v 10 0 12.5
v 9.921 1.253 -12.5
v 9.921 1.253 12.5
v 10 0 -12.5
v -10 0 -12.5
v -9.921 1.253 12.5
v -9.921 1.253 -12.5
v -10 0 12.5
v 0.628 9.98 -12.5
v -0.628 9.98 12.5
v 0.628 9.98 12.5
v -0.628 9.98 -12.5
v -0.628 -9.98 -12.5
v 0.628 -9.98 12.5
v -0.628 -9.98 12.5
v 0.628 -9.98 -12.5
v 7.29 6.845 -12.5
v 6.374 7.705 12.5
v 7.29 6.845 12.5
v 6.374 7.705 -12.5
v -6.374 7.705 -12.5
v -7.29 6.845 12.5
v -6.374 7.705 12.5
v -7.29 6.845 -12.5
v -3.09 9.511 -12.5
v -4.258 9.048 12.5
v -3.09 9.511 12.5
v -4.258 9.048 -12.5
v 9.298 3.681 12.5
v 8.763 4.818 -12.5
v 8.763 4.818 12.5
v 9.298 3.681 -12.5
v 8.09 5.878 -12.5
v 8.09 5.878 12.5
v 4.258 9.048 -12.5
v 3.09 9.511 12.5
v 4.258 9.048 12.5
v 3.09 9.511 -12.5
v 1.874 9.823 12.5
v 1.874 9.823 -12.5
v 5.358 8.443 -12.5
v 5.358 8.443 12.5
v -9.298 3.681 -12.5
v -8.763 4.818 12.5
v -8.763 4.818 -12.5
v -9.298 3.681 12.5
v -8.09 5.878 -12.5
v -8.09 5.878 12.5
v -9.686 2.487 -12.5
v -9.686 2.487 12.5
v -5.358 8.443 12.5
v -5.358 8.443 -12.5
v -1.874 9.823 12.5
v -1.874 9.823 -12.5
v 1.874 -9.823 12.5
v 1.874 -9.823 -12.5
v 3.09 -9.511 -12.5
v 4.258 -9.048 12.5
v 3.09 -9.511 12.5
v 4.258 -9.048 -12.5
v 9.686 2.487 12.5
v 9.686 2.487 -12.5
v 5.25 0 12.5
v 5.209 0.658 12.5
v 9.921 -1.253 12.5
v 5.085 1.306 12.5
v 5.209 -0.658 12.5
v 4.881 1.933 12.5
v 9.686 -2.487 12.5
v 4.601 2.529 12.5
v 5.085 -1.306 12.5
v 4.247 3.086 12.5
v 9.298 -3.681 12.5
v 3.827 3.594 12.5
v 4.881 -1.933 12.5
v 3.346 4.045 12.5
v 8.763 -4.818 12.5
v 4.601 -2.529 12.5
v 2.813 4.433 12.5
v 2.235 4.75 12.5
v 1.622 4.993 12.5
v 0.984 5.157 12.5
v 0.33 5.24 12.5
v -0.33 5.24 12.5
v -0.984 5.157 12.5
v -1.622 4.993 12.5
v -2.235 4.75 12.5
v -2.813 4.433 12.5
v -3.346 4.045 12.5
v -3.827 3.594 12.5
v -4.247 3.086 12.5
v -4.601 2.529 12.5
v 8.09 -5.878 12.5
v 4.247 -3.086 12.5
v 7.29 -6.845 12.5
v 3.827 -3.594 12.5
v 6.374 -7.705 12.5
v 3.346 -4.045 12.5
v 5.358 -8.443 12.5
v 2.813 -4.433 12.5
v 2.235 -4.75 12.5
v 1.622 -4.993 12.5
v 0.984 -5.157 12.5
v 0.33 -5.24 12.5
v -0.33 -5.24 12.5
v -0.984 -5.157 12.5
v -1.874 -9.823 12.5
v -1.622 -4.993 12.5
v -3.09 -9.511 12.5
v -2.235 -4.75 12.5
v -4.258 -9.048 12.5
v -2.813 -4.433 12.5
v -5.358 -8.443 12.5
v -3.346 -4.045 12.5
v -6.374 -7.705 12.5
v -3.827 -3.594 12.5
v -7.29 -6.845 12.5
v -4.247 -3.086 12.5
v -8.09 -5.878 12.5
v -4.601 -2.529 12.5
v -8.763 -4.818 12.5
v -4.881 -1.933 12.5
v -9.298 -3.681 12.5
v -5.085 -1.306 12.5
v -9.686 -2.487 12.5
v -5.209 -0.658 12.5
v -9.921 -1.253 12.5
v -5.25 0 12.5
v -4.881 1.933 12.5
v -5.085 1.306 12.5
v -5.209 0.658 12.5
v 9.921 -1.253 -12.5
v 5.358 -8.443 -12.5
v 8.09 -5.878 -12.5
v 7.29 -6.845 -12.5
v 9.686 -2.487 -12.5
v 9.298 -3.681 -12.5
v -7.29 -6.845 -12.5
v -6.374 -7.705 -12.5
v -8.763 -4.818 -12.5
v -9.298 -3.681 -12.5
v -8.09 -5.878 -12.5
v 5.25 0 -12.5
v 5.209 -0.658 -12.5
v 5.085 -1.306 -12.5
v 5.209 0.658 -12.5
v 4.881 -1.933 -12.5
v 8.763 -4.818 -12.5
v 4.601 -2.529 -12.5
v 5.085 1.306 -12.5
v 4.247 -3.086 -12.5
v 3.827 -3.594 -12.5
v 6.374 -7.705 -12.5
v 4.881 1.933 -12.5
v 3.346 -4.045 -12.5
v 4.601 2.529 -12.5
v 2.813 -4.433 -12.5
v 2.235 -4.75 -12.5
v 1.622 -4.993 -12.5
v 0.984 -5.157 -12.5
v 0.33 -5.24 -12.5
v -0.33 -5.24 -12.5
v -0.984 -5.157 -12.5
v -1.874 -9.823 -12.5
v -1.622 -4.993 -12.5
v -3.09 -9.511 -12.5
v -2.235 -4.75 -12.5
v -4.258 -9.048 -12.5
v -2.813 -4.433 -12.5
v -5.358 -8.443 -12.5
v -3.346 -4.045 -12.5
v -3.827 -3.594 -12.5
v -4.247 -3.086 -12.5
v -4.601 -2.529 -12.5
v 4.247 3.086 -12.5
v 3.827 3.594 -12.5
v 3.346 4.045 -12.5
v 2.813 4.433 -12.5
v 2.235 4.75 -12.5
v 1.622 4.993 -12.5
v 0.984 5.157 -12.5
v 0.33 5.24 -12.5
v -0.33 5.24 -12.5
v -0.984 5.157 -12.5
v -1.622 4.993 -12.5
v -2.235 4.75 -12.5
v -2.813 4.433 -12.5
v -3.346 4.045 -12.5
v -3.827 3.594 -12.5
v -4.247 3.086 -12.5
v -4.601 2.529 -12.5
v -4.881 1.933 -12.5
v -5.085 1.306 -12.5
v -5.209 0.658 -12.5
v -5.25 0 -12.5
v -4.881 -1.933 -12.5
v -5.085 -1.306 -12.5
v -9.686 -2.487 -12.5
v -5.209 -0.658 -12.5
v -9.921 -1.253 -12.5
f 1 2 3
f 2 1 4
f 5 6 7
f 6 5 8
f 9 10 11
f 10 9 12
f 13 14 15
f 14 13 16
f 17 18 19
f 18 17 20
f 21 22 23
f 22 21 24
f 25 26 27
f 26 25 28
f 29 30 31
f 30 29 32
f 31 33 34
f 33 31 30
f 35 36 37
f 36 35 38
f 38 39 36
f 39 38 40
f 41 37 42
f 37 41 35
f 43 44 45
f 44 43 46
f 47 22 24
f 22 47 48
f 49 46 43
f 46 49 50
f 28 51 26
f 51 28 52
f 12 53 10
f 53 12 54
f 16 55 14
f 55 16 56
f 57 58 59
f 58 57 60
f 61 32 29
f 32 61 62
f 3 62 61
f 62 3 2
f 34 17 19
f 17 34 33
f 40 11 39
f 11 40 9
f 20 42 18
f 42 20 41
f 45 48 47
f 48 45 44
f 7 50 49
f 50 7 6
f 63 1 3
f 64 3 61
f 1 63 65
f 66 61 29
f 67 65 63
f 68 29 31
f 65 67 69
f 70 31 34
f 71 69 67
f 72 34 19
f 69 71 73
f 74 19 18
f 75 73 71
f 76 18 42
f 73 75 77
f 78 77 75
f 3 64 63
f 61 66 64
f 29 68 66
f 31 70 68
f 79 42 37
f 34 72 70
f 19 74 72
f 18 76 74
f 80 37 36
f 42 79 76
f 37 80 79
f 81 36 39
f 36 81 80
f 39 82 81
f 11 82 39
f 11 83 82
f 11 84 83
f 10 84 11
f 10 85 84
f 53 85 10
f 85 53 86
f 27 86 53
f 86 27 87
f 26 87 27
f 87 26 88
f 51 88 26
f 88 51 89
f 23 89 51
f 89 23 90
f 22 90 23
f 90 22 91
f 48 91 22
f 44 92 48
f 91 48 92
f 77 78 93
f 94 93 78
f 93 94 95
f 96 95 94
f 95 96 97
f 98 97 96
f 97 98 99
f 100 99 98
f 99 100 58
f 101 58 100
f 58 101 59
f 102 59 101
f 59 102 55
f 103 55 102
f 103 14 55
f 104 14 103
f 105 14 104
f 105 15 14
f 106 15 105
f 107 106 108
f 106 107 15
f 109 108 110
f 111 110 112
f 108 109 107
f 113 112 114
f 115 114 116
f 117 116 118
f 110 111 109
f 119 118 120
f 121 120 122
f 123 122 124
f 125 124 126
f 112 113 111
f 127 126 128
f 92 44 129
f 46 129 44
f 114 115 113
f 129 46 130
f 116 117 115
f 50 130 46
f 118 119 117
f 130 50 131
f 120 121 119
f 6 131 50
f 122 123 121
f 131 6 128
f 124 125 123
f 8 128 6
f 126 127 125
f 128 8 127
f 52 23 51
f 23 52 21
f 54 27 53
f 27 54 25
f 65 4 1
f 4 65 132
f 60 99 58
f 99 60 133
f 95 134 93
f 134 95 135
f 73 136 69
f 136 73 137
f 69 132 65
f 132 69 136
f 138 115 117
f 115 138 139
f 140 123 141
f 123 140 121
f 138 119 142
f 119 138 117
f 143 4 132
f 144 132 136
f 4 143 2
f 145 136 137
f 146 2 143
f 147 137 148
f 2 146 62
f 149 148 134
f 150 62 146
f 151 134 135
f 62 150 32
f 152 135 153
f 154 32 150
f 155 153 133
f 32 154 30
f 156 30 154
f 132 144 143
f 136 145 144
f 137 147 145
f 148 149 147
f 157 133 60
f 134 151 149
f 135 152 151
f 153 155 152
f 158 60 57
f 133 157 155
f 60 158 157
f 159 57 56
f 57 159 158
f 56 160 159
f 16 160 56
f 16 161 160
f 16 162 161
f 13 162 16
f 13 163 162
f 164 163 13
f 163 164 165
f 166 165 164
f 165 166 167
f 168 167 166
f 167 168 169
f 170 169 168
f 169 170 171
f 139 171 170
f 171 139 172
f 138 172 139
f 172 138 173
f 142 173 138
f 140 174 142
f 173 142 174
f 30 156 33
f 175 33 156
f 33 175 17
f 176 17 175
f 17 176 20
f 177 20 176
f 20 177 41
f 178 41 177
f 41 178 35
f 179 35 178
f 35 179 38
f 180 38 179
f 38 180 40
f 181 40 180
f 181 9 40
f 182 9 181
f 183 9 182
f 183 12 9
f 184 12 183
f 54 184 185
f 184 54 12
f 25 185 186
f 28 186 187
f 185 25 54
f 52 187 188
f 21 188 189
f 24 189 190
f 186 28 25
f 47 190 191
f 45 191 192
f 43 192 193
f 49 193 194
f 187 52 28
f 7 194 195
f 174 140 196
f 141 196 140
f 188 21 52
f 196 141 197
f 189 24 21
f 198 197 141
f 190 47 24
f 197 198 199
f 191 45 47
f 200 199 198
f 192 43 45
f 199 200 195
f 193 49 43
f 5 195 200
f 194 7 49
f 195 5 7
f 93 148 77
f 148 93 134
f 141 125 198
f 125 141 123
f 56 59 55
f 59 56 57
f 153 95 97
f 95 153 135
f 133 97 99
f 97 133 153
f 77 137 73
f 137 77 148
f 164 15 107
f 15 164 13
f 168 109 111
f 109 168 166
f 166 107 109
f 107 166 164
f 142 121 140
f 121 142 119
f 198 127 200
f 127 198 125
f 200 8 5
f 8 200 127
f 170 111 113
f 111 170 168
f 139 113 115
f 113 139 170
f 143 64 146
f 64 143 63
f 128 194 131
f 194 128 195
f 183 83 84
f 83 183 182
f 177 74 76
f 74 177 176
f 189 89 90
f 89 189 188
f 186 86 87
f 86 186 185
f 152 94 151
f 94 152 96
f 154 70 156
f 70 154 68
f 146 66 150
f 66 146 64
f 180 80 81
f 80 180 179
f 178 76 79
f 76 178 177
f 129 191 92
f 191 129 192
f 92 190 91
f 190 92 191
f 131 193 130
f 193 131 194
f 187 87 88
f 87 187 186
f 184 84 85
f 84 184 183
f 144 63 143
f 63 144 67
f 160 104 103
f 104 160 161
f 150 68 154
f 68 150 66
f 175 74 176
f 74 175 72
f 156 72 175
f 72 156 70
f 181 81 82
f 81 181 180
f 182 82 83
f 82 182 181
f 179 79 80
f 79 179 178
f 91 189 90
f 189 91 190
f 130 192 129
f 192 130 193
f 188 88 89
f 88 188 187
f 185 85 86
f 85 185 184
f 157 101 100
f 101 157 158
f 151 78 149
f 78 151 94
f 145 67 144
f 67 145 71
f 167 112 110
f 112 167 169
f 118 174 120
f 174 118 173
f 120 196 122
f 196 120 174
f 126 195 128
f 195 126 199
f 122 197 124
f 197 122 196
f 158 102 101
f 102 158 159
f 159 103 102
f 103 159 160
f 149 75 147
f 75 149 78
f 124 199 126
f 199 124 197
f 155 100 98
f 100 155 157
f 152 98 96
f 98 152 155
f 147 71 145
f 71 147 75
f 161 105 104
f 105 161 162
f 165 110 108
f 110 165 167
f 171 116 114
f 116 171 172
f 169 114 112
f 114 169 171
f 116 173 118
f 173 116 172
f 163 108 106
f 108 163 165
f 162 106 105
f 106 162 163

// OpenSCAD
$fn = 50;


difference() {
	union() {
		translate(v = [0, 0, -12.5000000000]) {
			cylinder(h = 25, r = 10.0000000000);
		}
	}
	union() {
		translate(v = [0, 0, -100.0000000000]) {
			cylinder(h = 200, r = 5.2500000000);
		}
	}
}
